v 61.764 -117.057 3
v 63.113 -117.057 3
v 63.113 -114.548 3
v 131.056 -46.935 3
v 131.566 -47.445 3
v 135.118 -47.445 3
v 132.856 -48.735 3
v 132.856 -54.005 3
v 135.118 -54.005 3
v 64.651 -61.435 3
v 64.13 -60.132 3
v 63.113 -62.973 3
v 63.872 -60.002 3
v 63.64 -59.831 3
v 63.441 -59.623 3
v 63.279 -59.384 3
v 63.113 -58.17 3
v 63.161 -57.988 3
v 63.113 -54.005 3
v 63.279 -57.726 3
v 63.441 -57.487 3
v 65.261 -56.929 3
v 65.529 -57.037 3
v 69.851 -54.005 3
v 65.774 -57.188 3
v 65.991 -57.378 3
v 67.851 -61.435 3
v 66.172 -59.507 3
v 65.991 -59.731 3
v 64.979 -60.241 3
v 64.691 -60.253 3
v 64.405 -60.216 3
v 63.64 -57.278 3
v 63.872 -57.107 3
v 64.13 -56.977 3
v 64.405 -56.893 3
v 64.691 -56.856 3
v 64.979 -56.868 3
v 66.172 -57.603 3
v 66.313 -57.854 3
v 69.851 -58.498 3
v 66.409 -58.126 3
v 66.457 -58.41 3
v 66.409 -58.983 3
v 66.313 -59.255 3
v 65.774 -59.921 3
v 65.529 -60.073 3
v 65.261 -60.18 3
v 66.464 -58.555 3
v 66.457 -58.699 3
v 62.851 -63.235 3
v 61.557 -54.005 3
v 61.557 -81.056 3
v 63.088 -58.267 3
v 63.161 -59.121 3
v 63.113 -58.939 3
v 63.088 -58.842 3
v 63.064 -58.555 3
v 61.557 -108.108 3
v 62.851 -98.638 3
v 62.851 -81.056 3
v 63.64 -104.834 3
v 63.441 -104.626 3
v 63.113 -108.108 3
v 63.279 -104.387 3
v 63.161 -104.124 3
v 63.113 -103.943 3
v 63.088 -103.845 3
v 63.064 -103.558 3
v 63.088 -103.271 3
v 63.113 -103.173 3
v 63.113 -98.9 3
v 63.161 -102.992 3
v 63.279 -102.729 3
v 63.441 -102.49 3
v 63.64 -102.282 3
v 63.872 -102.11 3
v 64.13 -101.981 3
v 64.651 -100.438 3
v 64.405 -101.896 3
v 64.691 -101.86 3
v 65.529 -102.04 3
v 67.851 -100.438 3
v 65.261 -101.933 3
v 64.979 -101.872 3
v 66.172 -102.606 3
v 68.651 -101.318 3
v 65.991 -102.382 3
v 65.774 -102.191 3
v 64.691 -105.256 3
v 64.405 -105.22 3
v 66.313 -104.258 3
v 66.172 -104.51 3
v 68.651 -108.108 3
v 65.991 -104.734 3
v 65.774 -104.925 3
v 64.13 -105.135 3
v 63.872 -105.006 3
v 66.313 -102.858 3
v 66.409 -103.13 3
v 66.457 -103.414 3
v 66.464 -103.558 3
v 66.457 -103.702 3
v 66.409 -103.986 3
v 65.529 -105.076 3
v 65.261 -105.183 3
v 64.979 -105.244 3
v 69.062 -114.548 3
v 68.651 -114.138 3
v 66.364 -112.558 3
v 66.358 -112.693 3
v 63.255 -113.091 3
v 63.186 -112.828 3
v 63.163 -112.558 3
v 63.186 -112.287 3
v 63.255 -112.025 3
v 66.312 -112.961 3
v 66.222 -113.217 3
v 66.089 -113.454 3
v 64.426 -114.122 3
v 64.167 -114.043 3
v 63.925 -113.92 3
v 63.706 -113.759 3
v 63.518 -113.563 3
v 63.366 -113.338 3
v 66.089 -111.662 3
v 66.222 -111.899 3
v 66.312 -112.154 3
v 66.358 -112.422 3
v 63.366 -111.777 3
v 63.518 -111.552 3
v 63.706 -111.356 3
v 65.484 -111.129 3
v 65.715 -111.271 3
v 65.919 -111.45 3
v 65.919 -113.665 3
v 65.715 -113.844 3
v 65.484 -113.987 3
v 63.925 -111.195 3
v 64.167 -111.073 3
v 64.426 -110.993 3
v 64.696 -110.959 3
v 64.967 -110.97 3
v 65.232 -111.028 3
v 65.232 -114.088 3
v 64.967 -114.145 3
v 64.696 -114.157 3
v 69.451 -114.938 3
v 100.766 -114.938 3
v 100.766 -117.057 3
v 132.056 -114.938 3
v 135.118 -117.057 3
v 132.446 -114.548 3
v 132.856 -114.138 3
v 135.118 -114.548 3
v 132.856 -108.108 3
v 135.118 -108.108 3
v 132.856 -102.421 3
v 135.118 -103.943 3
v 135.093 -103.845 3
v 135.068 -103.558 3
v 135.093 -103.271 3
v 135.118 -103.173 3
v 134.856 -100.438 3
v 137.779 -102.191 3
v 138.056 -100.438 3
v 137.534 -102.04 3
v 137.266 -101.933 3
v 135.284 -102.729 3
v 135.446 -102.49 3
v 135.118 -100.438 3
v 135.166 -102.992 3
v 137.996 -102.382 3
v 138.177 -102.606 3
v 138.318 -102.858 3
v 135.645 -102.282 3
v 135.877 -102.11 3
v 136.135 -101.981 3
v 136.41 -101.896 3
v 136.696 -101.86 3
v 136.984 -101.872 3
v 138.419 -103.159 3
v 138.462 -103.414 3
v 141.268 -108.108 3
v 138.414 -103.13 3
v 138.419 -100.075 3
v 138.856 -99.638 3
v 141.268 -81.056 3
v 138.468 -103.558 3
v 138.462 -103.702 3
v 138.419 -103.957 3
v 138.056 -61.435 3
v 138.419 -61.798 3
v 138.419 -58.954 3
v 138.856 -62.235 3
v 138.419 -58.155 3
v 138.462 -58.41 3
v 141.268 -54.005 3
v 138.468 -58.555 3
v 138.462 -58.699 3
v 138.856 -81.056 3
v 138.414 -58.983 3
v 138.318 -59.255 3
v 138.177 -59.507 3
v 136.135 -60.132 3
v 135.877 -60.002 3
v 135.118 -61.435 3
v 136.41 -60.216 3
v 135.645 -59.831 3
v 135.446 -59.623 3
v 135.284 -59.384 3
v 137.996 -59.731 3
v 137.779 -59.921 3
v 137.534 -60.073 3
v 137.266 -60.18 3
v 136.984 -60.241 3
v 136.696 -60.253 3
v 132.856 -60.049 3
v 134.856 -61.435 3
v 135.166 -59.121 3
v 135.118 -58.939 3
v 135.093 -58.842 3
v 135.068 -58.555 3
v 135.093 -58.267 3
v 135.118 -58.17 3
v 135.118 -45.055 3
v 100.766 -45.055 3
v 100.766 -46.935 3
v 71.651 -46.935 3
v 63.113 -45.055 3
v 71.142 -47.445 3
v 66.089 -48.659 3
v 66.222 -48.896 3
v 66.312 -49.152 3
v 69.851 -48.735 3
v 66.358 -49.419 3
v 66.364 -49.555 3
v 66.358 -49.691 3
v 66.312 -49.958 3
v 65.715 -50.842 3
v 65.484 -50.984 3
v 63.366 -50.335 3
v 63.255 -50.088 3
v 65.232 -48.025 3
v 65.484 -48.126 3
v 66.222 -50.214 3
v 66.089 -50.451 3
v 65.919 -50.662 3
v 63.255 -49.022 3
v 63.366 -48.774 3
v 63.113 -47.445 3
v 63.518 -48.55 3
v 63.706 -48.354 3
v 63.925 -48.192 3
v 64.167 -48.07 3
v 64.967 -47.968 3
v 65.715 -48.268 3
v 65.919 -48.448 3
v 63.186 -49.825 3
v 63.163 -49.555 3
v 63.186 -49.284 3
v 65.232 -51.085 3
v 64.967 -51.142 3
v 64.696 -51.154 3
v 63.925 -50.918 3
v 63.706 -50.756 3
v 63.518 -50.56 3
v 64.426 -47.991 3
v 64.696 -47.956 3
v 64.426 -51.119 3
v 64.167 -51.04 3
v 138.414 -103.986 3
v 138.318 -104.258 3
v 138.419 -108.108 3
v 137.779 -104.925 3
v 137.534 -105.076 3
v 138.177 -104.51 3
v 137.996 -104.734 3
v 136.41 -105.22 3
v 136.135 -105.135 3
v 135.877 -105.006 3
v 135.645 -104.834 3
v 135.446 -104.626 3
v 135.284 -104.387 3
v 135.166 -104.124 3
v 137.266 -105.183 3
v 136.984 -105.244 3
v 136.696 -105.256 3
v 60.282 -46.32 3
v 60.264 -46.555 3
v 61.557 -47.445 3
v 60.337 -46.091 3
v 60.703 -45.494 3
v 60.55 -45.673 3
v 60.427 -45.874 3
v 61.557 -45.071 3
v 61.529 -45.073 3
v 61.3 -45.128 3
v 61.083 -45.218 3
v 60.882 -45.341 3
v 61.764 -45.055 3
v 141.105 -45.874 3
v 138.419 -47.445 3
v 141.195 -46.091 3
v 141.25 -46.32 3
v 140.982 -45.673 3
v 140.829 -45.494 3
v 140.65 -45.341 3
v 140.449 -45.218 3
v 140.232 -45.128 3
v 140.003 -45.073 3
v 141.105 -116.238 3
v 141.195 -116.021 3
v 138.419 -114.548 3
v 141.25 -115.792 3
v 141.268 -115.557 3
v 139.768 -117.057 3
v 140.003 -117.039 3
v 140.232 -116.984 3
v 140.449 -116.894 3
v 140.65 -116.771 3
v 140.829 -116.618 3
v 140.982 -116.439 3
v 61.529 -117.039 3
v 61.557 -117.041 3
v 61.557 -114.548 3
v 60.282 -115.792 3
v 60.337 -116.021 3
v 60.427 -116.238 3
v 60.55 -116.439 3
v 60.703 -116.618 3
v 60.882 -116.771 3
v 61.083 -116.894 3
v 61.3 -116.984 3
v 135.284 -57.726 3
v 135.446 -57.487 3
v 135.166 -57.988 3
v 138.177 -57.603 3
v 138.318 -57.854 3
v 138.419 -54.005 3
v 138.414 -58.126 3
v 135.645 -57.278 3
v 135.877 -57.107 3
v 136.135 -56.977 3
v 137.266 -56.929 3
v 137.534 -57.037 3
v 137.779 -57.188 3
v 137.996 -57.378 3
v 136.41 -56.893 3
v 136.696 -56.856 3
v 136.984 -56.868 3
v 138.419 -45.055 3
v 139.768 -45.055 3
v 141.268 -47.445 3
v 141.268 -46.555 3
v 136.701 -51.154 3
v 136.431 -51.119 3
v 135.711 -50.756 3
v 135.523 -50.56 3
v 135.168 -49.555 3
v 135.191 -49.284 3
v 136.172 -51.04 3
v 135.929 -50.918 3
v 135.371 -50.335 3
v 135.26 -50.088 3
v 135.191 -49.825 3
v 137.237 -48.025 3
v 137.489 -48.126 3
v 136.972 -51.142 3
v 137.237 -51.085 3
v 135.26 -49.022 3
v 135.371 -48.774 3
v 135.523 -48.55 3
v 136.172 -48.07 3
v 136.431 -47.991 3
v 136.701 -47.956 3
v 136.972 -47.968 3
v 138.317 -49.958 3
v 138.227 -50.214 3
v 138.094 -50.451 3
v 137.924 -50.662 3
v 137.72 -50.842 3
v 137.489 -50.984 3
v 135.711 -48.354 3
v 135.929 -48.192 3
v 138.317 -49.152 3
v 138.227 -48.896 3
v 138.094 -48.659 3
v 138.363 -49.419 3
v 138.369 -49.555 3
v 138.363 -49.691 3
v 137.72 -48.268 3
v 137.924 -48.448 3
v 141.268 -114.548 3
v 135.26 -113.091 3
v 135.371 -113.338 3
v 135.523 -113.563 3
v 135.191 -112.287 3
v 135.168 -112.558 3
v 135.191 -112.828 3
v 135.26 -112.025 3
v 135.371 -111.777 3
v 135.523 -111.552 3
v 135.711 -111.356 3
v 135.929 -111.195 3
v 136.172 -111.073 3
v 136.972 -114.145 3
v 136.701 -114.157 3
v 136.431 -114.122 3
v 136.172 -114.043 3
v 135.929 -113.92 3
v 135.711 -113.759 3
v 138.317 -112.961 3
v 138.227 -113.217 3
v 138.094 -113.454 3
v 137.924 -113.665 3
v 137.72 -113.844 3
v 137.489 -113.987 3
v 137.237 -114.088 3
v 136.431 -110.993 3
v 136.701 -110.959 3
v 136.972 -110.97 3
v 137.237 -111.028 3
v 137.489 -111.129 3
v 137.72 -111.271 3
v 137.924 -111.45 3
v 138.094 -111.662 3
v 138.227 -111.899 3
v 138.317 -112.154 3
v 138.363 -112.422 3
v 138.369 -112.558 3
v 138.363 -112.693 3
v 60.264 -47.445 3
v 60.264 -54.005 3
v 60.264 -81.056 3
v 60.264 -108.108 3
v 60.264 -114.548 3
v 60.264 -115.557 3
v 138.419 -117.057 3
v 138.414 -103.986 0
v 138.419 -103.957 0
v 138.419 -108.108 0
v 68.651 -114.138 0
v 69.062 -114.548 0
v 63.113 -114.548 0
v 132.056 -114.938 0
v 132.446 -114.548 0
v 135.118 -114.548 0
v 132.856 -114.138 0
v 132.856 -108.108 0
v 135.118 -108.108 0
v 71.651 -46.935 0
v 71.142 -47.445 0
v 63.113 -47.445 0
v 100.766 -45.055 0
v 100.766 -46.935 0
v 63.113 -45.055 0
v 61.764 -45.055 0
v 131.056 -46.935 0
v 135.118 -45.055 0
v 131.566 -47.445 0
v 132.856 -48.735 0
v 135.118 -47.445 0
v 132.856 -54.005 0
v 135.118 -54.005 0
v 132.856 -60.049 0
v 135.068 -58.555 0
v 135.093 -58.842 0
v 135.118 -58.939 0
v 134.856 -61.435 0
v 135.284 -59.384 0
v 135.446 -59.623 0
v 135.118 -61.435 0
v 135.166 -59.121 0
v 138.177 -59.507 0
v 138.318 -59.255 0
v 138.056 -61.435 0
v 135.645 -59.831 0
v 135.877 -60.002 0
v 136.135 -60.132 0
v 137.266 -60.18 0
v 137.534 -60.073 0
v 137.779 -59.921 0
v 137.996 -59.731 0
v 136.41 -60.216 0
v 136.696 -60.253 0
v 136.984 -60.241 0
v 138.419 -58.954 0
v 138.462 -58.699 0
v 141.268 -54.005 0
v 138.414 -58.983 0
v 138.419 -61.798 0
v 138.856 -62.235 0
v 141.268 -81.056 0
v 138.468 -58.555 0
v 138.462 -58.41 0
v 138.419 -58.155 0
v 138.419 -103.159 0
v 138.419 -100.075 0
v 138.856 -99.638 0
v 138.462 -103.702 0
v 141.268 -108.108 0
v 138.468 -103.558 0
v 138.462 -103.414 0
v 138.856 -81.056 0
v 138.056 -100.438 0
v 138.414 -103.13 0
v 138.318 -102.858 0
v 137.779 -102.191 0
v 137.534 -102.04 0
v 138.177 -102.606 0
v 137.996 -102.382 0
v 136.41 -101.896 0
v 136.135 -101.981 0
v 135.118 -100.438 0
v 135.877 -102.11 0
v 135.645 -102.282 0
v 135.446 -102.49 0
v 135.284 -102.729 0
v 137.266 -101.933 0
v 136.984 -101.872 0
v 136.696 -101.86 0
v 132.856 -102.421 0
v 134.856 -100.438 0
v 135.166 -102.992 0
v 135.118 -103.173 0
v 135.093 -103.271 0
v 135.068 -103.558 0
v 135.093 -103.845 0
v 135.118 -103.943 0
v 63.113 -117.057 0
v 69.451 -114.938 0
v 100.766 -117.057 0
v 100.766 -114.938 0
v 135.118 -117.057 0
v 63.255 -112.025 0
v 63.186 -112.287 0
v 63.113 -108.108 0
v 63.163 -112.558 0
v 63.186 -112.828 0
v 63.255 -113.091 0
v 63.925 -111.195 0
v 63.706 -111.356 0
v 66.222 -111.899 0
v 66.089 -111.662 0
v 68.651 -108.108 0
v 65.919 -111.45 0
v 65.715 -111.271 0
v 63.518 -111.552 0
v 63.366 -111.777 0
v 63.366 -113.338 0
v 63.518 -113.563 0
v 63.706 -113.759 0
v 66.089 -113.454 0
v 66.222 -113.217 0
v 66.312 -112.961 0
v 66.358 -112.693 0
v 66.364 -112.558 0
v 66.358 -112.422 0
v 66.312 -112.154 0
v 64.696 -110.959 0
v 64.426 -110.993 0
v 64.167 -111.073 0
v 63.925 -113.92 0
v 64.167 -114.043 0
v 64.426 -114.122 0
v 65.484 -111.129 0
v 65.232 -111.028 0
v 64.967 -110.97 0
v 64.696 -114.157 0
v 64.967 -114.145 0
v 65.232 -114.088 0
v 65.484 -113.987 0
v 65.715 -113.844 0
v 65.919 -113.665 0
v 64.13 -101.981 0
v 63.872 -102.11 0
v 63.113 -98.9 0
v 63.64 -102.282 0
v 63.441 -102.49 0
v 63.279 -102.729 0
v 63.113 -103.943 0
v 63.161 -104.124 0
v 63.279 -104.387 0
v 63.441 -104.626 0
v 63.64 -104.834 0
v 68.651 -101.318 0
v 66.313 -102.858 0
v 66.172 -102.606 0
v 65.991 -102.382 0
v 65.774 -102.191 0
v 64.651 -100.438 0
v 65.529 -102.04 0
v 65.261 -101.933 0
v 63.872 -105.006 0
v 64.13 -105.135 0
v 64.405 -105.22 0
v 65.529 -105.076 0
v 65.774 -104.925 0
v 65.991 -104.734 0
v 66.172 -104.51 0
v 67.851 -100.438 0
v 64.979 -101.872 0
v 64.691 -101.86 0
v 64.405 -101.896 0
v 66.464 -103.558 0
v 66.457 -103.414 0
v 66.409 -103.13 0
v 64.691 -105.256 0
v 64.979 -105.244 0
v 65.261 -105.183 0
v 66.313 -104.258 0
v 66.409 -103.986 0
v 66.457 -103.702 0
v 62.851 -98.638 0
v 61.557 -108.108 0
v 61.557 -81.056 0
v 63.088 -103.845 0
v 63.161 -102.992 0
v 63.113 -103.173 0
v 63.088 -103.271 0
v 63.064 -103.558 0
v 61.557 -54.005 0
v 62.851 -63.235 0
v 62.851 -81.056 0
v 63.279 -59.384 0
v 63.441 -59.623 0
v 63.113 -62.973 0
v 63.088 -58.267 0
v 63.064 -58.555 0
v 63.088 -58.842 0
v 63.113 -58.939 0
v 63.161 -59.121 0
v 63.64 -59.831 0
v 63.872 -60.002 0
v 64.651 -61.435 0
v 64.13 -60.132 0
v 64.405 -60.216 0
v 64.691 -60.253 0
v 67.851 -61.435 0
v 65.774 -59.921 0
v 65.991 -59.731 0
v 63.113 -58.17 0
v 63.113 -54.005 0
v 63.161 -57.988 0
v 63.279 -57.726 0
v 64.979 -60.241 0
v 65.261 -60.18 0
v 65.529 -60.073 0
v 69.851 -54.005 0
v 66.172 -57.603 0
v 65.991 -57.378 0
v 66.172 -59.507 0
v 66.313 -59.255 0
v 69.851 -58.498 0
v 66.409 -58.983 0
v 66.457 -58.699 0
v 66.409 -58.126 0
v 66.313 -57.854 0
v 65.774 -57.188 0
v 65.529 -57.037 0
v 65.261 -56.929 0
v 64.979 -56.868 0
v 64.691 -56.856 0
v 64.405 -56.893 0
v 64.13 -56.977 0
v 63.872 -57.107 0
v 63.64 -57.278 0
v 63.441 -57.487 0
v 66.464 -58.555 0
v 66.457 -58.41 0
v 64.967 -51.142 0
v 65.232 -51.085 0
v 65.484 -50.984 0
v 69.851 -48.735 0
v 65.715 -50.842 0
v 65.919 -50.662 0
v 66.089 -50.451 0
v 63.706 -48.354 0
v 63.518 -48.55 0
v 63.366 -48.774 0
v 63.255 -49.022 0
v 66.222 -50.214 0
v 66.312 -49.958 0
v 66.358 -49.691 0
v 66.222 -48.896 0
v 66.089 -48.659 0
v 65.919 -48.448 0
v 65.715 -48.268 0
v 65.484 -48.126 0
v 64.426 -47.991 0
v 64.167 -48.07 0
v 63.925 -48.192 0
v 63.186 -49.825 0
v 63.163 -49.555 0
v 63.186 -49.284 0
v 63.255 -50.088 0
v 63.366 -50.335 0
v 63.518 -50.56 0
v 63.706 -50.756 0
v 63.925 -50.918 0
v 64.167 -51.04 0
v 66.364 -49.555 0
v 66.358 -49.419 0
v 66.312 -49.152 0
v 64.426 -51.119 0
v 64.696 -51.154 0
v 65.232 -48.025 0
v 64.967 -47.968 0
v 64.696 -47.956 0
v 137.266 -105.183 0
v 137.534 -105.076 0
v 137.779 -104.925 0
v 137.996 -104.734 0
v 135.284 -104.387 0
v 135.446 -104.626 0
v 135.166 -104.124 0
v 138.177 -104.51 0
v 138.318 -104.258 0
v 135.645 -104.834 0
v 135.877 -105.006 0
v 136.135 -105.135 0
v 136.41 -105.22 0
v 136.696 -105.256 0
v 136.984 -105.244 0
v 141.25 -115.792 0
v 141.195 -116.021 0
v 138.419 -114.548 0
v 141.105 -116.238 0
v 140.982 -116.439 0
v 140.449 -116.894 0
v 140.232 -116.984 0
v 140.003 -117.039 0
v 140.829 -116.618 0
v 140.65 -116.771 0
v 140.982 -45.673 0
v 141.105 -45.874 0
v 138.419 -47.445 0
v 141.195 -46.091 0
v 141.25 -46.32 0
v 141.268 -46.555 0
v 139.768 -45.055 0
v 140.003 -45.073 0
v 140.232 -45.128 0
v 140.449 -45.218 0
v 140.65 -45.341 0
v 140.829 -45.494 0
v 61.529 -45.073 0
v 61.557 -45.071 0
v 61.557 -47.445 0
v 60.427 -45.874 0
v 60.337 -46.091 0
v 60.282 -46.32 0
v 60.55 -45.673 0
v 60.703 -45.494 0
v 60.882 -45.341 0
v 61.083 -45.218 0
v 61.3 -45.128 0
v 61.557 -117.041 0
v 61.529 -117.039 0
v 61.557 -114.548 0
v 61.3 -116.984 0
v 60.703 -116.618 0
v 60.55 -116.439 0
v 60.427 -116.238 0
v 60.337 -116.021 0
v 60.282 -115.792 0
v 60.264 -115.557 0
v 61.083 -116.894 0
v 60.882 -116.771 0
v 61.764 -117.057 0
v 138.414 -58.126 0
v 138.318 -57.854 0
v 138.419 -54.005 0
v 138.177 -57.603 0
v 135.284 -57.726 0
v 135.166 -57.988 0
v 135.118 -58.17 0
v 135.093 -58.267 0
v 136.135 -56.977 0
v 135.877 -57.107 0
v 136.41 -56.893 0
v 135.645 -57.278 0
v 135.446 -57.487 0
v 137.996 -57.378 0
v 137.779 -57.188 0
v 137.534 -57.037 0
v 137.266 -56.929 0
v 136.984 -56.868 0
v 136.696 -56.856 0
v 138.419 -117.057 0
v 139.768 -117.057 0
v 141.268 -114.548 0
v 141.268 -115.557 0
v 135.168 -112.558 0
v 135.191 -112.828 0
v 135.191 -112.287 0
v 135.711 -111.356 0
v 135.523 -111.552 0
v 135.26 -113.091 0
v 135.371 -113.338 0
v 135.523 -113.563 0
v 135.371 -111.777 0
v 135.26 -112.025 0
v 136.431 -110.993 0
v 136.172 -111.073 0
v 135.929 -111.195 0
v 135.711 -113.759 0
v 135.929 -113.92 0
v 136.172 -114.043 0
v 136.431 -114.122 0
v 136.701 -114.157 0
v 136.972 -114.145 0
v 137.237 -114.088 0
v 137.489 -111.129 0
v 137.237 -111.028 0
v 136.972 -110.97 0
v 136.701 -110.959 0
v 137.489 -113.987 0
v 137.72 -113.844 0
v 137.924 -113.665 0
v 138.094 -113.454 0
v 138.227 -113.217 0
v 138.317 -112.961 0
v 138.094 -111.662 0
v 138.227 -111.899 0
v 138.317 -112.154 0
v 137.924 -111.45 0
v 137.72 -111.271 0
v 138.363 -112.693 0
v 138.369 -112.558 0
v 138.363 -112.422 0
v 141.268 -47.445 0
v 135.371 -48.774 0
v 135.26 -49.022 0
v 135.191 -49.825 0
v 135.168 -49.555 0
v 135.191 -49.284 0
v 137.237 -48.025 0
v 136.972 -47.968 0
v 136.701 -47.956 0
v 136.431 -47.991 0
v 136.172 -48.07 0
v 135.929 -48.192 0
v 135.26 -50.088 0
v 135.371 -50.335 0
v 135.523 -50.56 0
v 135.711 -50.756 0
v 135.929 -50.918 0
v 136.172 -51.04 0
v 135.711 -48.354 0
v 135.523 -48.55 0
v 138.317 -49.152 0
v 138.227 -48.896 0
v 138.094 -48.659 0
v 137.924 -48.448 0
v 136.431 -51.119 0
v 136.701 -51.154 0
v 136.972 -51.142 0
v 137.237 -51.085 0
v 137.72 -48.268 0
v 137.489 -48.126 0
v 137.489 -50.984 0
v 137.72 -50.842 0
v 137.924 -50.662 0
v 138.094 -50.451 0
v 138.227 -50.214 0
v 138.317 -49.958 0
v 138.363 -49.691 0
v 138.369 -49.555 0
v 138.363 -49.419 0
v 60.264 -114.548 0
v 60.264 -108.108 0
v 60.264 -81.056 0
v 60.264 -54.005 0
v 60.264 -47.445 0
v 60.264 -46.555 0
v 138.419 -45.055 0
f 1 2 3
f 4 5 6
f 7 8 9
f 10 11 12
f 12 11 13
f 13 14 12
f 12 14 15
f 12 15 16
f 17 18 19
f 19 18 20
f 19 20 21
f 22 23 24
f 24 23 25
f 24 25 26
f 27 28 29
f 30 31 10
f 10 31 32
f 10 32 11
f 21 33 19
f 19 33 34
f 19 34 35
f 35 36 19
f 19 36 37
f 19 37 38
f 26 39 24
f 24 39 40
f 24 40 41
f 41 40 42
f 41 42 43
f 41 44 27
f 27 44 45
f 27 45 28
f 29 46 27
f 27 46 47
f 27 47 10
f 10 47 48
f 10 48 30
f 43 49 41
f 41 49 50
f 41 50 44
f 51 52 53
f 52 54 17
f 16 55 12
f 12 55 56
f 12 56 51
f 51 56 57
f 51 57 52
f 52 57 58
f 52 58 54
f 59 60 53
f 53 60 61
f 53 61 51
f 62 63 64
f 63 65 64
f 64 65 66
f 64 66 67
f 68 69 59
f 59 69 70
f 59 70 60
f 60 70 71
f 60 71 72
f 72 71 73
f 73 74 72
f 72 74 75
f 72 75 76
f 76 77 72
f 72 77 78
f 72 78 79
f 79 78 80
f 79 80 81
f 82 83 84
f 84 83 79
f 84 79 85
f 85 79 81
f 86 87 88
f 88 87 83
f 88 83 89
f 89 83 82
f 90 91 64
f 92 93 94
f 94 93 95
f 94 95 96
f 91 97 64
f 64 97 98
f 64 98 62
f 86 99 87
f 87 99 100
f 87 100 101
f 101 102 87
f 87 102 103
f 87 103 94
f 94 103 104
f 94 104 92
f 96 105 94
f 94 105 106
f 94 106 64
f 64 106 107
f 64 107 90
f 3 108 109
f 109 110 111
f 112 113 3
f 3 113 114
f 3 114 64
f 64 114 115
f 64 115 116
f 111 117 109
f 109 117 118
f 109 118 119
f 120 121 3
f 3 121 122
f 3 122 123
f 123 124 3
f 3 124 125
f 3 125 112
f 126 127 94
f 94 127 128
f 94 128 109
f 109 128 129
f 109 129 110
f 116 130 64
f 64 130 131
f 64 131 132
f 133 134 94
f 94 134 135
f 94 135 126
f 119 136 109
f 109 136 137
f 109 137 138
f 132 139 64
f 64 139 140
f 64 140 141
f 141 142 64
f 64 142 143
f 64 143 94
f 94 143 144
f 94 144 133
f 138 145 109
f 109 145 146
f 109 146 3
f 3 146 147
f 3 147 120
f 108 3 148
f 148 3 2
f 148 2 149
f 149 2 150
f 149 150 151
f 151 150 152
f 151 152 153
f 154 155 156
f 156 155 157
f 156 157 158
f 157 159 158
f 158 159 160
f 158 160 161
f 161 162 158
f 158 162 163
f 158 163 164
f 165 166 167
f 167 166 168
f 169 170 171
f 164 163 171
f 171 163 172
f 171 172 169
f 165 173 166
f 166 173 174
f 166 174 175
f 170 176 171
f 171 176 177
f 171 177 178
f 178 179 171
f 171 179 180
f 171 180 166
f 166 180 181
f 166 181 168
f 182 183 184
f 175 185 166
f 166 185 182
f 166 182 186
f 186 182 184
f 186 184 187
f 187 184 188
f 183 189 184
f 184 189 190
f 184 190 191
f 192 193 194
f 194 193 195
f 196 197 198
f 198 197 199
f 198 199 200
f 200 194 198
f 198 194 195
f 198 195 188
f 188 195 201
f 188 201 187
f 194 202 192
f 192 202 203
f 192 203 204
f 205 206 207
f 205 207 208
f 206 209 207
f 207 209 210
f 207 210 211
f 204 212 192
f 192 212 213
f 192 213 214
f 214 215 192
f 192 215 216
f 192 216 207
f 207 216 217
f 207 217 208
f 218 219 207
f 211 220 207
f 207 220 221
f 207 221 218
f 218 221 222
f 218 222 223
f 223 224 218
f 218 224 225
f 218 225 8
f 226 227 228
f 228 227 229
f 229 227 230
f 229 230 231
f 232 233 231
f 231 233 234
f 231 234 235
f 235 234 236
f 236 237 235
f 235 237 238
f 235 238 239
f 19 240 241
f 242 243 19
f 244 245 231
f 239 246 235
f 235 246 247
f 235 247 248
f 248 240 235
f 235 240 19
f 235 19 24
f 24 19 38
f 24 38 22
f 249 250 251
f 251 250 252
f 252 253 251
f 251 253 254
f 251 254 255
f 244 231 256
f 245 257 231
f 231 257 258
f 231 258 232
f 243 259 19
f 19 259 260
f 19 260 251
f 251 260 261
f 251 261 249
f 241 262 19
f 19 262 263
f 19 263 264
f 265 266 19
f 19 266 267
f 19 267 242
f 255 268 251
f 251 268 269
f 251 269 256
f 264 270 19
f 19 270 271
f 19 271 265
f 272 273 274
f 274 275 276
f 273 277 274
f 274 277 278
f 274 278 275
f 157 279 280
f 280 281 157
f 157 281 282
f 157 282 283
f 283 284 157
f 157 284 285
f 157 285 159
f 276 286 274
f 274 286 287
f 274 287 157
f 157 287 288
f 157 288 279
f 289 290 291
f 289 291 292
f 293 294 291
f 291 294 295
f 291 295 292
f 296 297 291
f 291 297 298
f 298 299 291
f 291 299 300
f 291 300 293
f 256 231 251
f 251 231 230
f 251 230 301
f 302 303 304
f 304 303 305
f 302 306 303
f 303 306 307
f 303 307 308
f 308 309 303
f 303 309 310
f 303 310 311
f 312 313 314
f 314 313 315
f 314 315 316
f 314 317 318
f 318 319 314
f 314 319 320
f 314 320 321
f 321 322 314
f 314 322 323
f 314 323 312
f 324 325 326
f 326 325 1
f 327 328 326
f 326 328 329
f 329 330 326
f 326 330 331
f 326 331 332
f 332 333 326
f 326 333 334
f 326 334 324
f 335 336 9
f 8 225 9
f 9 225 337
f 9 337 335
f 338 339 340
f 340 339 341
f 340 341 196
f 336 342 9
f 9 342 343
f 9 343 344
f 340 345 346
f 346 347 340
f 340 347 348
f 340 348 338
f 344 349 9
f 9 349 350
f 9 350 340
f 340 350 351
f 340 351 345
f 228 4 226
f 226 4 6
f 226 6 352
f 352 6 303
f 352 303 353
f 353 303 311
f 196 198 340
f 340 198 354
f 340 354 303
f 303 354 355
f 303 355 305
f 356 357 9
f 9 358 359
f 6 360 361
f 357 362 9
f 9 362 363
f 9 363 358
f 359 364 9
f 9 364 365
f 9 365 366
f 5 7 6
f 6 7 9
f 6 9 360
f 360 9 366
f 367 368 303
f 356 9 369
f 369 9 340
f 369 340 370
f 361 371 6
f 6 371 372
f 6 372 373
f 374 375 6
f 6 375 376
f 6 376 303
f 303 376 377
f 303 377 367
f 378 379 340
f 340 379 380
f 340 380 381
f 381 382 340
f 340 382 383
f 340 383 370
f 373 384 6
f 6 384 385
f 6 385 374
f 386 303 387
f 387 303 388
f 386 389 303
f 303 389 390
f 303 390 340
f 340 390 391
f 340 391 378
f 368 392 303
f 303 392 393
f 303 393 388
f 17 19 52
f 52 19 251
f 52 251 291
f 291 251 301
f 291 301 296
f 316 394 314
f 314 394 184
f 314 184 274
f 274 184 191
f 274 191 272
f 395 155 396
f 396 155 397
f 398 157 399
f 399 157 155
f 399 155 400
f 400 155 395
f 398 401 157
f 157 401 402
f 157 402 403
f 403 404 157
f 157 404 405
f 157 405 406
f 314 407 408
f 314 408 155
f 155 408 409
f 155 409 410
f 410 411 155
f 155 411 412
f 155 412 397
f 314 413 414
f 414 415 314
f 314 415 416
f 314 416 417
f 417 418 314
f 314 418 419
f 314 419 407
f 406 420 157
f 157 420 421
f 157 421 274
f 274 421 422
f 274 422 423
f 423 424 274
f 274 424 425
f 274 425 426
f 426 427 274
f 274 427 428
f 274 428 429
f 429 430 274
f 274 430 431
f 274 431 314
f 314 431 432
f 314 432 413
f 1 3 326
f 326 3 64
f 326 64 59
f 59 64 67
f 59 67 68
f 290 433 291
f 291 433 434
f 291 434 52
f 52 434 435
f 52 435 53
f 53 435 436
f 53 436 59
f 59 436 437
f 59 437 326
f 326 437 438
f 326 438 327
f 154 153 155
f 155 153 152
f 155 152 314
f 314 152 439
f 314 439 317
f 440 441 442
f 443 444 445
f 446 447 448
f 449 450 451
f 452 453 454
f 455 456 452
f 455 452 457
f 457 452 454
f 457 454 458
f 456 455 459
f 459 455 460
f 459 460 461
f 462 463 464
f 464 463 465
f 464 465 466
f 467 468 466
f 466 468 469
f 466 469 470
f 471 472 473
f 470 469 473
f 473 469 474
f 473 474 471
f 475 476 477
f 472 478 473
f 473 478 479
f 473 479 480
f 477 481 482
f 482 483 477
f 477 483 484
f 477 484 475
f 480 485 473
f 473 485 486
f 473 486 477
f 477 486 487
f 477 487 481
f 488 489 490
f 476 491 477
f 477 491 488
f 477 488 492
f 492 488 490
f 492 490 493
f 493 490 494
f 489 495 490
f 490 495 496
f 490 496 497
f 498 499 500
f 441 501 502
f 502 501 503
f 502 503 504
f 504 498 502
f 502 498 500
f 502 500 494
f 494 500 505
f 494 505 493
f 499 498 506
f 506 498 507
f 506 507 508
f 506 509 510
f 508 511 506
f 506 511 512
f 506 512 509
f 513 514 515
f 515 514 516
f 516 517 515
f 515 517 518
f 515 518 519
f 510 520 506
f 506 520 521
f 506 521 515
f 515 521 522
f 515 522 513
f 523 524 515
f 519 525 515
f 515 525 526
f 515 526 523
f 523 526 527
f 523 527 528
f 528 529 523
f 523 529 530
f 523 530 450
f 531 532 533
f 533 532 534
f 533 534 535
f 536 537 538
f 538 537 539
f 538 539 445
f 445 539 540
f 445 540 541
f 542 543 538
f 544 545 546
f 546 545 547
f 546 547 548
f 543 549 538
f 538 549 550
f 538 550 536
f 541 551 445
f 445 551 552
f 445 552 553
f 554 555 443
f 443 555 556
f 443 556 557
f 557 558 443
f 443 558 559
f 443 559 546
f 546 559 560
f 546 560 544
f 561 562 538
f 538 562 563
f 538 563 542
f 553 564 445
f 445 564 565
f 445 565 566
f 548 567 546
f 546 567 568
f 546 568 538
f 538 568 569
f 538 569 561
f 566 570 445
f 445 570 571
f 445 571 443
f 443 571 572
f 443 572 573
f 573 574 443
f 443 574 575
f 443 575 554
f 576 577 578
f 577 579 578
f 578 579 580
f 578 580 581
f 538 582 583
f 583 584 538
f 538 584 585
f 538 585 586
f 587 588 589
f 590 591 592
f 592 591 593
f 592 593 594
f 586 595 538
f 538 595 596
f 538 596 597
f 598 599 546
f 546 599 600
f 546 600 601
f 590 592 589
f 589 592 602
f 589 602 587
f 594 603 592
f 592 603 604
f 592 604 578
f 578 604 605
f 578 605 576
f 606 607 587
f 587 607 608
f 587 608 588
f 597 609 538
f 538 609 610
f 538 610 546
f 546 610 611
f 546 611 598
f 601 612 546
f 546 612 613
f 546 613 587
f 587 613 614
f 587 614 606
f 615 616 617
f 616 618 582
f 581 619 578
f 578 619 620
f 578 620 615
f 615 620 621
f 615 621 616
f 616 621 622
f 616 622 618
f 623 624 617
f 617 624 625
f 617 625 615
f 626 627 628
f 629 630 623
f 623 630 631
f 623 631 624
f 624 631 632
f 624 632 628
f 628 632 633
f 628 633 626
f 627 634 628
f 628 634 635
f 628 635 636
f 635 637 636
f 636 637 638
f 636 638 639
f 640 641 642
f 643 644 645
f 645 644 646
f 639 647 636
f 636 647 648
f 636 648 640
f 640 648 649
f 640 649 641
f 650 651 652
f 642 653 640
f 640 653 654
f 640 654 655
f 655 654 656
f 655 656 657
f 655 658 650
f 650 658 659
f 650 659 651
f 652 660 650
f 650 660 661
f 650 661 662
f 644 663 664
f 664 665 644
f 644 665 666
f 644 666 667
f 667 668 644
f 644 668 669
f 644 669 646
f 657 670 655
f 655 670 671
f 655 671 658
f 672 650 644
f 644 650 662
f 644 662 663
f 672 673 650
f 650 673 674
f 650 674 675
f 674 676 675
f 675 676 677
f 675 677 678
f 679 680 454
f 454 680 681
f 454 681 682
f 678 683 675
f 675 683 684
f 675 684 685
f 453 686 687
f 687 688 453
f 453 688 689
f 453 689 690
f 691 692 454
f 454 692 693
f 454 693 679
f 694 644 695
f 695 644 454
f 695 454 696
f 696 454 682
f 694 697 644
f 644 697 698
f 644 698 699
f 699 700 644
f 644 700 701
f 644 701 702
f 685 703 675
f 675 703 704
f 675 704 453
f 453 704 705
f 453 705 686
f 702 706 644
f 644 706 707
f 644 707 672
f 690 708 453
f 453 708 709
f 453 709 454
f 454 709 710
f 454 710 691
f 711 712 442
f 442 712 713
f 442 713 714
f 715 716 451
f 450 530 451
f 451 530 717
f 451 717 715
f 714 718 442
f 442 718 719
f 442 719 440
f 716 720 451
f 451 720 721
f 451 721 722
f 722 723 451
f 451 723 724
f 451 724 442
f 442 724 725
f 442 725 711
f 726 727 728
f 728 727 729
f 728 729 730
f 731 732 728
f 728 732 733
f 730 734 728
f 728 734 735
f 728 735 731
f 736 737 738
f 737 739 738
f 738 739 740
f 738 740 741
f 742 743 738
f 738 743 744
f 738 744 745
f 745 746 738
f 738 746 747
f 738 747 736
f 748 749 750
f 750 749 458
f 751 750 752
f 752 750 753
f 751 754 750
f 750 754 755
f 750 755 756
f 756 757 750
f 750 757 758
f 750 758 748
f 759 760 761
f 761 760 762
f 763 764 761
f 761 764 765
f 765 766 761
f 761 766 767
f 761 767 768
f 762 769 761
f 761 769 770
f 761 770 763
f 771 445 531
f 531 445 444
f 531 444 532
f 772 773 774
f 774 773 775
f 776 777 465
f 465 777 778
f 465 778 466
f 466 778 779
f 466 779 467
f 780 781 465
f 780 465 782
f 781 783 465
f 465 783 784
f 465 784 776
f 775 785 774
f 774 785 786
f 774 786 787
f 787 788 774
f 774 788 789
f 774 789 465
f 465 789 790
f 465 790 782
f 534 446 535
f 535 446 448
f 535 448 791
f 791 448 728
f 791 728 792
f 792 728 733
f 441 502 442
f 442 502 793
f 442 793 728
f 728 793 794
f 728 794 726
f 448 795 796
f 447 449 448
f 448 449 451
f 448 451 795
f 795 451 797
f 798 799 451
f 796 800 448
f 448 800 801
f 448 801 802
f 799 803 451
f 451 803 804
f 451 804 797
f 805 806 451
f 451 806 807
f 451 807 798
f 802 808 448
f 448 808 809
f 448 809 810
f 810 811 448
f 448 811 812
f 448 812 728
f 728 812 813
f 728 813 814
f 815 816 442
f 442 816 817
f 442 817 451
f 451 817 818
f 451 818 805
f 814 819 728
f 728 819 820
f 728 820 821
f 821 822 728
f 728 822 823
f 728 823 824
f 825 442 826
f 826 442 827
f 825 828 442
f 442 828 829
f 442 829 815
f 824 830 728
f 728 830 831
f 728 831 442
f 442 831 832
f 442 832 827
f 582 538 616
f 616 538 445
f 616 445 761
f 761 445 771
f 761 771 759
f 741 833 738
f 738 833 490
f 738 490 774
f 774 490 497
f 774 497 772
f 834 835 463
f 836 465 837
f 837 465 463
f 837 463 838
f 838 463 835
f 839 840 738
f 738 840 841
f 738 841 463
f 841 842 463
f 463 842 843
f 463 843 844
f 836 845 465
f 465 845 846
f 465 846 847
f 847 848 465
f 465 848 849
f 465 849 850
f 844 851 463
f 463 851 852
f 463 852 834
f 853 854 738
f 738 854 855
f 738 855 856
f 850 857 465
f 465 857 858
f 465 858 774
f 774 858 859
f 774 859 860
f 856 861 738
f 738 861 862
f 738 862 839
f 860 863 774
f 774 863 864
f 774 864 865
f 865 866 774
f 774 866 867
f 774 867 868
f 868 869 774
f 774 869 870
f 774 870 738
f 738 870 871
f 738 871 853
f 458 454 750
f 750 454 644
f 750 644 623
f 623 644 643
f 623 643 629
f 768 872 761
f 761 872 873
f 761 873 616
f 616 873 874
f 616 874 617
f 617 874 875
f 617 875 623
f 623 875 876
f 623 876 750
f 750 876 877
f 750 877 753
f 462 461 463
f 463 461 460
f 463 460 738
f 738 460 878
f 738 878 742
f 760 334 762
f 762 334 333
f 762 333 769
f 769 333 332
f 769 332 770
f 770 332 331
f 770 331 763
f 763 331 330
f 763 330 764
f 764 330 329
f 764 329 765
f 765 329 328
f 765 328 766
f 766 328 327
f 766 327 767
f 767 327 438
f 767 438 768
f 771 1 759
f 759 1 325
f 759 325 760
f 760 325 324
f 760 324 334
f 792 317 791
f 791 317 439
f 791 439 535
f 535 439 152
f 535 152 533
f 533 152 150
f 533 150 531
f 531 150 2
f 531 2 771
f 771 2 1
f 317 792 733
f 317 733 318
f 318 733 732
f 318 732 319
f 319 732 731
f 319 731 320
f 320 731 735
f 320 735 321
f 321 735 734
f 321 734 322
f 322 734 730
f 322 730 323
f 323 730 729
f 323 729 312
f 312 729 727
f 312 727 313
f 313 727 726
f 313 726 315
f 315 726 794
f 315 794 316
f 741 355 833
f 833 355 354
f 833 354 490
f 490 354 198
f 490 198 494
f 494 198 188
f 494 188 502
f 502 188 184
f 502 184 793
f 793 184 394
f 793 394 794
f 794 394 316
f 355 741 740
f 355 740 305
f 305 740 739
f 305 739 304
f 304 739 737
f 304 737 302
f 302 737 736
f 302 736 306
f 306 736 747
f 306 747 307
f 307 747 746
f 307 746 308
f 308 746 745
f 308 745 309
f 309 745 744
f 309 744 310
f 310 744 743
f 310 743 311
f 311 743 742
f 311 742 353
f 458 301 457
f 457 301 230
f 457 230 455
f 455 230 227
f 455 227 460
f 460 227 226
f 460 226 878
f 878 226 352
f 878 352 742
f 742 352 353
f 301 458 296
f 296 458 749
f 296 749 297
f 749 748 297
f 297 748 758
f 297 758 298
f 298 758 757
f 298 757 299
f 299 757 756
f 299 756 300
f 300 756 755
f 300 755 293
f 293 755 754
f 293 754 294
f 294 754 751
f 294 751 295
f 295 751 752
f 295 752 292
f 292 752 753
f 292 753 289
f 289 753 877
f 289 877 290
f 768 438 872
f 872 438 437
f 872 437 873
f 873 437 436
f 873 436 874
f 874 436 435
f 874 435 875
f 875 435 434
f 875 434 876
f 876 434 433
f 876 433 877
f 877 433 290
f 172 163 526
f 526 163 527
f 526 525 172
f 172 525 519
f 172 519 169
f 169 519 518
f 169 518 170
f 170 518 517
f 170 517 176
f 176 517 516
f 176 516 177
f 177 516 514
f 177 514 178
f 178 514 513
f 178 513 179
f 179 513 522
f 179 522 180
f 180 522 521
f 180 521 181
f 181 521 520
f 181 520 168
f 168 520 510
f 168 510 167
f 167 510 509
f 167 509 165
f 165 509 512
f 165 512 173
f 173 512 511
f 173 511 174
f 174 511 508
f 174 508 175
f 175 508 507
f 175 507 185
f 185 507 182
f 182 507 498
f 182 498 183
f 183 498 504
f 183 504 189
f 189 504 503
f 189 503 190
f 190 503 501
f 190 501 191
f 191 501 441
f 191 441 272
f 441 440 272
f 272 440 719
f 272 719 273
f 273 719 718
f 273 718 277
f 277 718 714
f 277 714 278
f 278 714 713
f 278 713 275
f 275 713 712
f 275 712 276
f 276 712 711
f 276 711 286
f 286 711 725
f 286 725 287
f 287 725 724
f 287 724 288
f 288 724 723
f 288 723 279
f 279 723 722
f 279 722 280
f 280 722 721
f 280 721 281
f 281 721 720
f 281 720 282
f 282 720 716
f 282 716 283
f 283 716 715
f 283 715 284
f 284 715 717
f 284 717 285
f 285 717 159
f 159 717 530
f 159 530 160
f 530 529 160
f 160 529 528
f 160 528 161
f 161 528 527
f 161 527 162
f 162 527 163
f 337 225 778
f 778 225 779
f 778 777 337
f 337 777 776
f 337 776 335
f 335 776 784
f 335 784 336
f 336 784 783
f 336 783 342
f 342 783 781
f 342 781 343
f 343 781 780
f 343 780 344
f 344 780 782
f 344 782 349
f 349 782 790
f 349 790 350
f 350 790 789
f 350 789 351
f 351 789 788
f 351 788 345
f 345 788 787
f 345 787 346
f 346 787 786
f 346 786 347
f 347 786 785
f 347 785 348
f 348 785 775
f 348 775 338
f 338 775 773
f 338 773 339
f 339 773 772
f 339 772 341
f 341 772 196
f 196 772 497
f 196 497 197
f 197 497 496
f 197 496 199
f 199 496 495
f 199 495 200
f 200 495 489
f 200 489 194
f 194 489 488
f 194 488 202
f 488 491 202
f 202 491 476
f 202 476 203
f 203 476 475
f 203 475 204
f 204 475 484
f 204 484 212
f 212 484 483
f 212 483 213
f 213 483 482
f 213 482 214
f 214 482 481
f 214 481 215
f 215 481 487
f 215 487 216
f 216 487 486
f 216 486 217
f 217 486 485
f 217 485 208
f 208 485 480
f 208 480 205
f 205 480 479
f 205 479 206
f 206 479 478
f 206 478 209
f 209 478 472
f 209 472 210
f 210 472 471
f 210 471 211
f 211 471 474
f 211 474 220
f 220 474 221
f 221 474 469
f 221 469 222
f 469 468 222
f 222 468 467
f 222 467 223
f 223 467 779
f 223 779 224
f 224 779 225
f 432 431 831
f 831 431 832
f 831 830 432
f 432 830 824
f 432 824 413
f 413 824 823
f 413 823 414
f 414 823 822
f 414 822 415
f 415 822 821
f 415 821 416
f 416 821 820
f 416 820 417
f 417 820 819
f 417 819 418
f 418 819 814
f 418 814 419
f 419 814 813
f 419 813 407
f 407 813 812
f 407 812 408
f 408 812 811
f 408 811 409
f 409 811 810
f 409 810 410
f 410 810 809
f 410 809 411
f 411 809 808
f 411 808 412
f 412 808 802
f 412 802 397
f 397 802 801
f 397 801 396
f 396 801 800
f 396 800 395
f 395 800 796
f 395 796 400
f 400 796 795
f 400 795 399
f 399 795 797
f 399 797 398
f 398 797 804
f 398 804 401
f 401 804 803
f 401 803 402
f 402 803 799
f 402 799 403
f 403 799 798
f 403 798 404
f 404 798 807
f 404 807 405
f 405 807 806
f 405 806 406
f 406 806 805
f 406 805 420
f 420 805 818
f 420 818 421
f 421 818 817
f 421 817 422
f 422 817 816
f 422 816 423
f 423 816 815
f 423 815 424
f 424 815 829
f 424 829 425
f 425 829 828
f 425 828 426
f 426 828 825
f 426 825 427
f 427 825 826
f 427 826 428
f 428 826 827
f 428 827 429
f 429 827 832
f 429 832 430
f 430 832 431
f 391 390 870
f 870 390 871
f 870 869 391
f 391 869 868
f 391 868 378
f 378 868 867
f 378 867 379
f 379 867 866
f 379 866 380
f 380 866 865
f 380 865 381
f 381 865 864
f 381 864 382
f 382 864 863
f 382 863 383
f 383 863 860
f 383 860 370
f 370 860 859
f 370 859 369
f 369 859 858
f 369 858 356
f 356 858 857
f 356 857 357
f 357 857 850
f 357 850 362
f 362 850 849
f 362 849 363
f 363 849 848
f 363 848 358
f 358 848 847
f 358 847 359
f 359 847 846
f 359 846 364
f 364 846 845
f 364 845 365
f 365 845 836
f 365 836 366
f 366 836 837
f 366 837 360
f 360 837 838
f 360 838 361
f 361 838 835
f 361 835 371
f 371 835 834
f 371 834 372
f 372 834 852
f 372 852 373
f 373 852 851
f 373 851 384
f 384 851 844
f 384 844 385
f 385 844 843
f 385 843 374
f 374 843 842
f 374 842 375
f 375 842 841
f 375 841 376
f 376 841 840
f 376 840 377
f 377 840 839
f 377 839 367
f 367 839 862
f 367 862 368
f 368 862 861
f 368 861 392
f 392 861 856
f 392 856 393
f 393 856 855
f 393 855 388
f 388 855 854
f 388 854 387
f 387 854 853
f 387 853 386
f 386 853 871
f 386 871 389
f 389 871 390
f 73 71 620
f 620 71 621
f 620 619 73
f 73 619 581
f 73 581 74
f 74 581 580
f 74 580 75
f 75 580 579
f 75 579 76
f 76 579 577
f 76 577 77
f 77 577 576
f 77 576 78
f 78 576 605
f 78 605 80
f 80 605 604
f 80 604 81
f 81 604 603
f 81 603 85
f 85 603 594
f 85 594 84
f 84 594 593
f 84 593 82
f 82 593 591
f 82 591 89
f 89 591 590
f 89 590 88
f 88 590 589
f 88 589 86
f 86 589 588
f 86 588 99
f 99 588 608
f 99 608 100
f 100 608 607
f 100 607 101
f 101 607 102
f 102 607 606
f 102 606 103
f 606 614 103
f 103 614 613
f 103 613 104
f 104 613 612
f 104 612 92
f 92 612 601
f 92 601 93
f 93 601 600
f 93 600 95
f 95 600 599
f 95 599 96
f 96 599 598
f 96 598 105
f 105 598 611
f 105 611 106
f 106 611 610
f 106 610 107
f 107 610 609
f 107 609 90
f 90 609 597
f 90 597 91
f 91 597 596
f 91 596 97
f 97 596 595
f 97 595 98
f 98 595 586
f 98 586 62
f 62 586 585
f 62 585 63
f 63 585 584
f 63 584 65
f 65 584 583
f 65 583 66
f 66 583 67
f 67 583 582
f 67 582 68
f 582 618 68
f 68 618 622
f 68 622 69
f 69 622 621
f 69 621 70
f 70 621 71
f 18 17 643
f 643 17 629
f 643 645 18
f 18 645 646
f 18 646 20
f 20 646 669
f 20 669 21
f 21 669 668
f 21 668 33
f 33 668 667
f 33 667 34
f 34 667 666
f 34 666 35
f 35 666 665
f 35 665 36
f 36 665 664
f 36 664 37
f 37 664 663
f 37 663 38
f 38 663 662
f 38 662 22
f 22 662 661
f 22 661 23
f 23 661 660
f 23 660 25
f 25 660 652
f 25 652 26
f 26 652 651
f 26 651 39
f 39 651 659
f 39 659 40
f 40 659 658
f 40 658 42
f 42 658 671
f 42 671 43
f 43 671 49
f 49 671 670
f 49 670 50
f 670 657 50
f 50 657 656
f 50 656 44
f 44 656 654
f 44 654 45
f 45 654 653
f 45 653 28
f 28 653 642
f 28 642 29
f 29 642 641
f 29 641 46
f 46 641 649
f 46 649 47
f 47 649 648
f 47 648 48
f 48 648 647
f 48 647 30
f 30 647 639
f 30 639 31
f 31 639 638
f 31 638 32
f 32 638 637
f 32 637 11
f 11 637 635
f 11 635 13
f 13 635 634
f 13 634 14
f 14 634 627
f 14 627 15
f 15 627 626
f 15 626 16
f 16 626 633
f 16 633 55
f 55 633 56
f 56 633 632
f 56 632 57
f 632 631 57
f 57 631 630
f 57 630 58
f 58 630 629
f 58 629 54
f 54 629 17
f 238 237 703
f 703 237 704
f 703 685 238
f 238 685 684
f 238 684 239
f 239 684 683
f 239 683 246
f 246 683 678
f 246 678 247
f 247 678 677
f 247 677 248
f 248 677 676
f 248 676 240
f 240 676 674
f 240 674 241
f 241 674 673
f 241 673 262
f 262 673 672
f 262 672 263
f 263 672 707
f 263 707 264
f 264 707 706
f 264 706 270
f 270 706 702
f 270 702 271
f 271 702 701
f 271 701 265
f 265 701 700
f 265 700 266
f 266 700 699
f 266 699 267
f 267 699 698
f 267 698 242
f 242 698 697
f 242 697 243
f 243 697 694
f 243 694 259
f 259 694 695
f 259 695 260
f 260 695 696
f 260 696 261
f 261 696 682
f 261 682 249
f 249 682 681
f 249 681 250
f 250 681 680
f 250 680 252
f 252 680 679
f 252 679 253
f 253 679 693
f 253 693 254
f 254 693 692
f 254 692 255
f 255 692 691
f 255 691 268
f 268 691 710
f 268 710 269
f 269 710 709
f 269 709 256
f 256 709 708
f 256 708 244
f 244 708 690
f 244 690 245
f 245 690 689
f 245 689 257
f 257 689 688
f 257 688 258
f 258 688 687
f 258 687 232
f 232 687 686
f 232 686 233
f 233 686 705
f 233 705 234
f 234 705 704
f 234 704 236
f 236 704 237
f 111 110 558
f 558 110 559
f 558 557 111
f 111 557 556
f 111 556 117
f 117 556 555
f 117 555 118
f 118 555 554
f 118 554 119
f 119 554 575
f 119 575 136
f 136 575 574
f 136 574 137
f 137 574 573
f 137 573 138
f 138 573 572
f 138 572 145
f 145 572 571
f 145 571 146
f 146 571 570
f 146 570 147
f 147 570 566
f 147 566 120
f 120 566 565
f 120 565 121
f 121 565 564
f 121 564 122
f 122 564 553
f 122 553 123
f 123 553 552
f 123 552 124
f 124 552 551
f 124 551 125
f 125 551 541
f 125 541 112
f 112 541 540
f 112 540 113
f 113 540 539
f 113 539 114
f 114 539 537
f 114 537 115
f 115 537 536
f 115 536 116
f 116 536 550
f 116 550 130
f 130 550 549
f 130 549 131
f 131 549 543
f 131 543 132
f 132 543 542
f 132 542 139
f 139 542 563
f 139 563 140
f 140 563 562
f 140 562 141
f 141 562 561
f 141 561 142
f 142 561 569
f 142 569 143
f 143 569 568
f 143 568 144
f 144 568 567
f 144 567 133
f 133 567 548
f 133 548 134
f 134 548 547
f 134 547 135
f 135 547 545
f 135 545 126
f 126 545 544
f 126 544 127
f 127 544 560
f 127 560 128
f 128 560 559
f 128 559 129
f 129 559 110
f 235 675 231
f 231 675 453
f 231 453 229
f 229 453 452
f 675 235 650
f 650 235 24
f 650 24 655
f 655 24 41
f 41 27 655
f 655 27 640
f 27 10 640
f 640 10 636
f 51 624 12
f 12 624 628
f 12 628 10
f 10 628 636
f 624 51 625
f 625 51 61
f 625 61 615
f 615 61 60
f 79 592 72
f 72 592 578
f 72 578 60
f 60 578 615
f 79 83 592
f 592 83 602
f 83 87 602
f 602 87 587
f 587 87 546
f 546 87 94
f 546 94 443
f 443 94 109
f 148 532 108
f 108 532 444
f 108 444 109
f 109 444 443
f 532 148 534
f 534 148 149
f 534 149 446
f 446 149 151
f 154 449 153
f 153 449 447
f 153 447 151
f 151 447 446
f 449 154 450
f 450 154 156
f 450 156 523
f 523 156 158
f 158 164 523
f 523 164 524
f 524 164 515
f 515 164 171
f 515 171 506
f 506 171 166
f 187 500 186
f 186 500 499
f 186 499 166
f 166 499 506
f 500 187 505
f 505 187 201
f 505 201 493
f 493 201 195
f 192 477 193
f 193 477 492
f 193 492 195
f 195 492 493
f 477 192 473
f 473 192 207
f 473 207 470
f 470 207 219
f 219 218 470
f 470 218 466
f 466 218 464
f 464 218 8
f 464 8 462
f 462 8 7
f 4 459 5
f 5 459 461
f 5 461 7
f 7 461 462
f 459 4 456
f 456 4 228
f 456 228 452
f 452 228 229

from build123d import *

# Parameters (mm, degrees)
MODEL_R                 = 1.7
MODEL_R_2               = 1.600279216
SALIENTE_EXTRUIR1_DEPTH = 3


with BuildPart() as part:
    # Model → Saliente-Extruir1 (new body)
    with BuildSketch(Plane.XY):
        with BuildLine():
            Line((60.263543448, -46.554934941), (60.263543448, -115.557339175))
            ThreePointArc((60.263543448, -115.557339175), (60.702883276, -116.617999347), (61.763543448, -117.057339175))
            Line((61.763543448, -117.057339175), (139.768153306, -117.057339175))
            ThreePointArc((139.768153306, -117.057339175), (140.828813478, -116.617999347), (141.268153306, -115.557339175))
            Line((141.268153306, -115.557339175), (141.268153306, -46.554934941))
            ThreePointArc((141.268153306, -46.554934941), (140.828813478, -45.494274769), (139.768153306, -45.054934941))
            Line((139.768153306, -45.054934941), (61.763543448, -45.054934941))
            ThreePointArc((61.763543448, -45.054934941), (60.702883276, -45.494274769), (60.263543448, -46.554934941))
        make_face()
        with Locations((136.768487808, -103.558008179)):
            Circle(MODEL_R, mode=Mode.SUBTRACT)
        with Locations((136.768487808, -58.554600438)):
            Circle(MODEL_R, mode=Mode.SUBTRACT)
        with Locations((136.768487808, -112.557673677)):
            Circle(MODEL_R_2, mode=Mode.SUBTRACT)
        with Locations((136.768487808, -49.554934941)):
            Circle(MODEL_R_2, mode=Mode.SUBTRACT)
        with Locations((64.763543448, -103.558008179)):
            Circle(MODEL_R, mode=Mode.SUBTRACT)
        with Locations((64.763543448, -58.554600438)):
            Circle(MODEL_R, mode=Mode.SUBTRACT)
        with Locations((64.763543448, -49.554934941)):
            Circle(MODEL_R_2, mode=Mode.SUBTRACT)
        with Locations((64.763543448, -112.557673677)):
            Circle(MODEL_R_2, mode=Mode.SUBTRACT)
        Polygon((71.651345037, -46.935116153), (131.055954895, -46.935116153), (132.855954895, -48.735116152), (132.855954895, -60.048667687), (134.855954895, -61.435116153), (138.055954895, -61.435116153), (138.855954895, -62.235116152), (138.855954895, -99.637520387), (138.055954895, -100.437520387), (134.855954895, -100.437520387), (132.855954895, -102.421405318), (132.855954895, -114.137520387), (132.055954895, -114.937520387), (69.451345037, -114.937520387), (68.651345037, -114.137520387), (68.651345037, -101.317509753), (67.851345037, -100.437520387), (64.651345037, -100.437520387), (62.851345037, -98.637520387), (62.851345037, -63.235116152), (64.651345037, -61.435116153), (67.851345037, -61.435116153), (69.851345037, -58.49810879), (69.851345037, -48.735116152), align=None, mode=Mode.SUBTRACT)
    extrude(amount=SALIENTE_EXTRUIR1_DEPTH)


solid = part.part
